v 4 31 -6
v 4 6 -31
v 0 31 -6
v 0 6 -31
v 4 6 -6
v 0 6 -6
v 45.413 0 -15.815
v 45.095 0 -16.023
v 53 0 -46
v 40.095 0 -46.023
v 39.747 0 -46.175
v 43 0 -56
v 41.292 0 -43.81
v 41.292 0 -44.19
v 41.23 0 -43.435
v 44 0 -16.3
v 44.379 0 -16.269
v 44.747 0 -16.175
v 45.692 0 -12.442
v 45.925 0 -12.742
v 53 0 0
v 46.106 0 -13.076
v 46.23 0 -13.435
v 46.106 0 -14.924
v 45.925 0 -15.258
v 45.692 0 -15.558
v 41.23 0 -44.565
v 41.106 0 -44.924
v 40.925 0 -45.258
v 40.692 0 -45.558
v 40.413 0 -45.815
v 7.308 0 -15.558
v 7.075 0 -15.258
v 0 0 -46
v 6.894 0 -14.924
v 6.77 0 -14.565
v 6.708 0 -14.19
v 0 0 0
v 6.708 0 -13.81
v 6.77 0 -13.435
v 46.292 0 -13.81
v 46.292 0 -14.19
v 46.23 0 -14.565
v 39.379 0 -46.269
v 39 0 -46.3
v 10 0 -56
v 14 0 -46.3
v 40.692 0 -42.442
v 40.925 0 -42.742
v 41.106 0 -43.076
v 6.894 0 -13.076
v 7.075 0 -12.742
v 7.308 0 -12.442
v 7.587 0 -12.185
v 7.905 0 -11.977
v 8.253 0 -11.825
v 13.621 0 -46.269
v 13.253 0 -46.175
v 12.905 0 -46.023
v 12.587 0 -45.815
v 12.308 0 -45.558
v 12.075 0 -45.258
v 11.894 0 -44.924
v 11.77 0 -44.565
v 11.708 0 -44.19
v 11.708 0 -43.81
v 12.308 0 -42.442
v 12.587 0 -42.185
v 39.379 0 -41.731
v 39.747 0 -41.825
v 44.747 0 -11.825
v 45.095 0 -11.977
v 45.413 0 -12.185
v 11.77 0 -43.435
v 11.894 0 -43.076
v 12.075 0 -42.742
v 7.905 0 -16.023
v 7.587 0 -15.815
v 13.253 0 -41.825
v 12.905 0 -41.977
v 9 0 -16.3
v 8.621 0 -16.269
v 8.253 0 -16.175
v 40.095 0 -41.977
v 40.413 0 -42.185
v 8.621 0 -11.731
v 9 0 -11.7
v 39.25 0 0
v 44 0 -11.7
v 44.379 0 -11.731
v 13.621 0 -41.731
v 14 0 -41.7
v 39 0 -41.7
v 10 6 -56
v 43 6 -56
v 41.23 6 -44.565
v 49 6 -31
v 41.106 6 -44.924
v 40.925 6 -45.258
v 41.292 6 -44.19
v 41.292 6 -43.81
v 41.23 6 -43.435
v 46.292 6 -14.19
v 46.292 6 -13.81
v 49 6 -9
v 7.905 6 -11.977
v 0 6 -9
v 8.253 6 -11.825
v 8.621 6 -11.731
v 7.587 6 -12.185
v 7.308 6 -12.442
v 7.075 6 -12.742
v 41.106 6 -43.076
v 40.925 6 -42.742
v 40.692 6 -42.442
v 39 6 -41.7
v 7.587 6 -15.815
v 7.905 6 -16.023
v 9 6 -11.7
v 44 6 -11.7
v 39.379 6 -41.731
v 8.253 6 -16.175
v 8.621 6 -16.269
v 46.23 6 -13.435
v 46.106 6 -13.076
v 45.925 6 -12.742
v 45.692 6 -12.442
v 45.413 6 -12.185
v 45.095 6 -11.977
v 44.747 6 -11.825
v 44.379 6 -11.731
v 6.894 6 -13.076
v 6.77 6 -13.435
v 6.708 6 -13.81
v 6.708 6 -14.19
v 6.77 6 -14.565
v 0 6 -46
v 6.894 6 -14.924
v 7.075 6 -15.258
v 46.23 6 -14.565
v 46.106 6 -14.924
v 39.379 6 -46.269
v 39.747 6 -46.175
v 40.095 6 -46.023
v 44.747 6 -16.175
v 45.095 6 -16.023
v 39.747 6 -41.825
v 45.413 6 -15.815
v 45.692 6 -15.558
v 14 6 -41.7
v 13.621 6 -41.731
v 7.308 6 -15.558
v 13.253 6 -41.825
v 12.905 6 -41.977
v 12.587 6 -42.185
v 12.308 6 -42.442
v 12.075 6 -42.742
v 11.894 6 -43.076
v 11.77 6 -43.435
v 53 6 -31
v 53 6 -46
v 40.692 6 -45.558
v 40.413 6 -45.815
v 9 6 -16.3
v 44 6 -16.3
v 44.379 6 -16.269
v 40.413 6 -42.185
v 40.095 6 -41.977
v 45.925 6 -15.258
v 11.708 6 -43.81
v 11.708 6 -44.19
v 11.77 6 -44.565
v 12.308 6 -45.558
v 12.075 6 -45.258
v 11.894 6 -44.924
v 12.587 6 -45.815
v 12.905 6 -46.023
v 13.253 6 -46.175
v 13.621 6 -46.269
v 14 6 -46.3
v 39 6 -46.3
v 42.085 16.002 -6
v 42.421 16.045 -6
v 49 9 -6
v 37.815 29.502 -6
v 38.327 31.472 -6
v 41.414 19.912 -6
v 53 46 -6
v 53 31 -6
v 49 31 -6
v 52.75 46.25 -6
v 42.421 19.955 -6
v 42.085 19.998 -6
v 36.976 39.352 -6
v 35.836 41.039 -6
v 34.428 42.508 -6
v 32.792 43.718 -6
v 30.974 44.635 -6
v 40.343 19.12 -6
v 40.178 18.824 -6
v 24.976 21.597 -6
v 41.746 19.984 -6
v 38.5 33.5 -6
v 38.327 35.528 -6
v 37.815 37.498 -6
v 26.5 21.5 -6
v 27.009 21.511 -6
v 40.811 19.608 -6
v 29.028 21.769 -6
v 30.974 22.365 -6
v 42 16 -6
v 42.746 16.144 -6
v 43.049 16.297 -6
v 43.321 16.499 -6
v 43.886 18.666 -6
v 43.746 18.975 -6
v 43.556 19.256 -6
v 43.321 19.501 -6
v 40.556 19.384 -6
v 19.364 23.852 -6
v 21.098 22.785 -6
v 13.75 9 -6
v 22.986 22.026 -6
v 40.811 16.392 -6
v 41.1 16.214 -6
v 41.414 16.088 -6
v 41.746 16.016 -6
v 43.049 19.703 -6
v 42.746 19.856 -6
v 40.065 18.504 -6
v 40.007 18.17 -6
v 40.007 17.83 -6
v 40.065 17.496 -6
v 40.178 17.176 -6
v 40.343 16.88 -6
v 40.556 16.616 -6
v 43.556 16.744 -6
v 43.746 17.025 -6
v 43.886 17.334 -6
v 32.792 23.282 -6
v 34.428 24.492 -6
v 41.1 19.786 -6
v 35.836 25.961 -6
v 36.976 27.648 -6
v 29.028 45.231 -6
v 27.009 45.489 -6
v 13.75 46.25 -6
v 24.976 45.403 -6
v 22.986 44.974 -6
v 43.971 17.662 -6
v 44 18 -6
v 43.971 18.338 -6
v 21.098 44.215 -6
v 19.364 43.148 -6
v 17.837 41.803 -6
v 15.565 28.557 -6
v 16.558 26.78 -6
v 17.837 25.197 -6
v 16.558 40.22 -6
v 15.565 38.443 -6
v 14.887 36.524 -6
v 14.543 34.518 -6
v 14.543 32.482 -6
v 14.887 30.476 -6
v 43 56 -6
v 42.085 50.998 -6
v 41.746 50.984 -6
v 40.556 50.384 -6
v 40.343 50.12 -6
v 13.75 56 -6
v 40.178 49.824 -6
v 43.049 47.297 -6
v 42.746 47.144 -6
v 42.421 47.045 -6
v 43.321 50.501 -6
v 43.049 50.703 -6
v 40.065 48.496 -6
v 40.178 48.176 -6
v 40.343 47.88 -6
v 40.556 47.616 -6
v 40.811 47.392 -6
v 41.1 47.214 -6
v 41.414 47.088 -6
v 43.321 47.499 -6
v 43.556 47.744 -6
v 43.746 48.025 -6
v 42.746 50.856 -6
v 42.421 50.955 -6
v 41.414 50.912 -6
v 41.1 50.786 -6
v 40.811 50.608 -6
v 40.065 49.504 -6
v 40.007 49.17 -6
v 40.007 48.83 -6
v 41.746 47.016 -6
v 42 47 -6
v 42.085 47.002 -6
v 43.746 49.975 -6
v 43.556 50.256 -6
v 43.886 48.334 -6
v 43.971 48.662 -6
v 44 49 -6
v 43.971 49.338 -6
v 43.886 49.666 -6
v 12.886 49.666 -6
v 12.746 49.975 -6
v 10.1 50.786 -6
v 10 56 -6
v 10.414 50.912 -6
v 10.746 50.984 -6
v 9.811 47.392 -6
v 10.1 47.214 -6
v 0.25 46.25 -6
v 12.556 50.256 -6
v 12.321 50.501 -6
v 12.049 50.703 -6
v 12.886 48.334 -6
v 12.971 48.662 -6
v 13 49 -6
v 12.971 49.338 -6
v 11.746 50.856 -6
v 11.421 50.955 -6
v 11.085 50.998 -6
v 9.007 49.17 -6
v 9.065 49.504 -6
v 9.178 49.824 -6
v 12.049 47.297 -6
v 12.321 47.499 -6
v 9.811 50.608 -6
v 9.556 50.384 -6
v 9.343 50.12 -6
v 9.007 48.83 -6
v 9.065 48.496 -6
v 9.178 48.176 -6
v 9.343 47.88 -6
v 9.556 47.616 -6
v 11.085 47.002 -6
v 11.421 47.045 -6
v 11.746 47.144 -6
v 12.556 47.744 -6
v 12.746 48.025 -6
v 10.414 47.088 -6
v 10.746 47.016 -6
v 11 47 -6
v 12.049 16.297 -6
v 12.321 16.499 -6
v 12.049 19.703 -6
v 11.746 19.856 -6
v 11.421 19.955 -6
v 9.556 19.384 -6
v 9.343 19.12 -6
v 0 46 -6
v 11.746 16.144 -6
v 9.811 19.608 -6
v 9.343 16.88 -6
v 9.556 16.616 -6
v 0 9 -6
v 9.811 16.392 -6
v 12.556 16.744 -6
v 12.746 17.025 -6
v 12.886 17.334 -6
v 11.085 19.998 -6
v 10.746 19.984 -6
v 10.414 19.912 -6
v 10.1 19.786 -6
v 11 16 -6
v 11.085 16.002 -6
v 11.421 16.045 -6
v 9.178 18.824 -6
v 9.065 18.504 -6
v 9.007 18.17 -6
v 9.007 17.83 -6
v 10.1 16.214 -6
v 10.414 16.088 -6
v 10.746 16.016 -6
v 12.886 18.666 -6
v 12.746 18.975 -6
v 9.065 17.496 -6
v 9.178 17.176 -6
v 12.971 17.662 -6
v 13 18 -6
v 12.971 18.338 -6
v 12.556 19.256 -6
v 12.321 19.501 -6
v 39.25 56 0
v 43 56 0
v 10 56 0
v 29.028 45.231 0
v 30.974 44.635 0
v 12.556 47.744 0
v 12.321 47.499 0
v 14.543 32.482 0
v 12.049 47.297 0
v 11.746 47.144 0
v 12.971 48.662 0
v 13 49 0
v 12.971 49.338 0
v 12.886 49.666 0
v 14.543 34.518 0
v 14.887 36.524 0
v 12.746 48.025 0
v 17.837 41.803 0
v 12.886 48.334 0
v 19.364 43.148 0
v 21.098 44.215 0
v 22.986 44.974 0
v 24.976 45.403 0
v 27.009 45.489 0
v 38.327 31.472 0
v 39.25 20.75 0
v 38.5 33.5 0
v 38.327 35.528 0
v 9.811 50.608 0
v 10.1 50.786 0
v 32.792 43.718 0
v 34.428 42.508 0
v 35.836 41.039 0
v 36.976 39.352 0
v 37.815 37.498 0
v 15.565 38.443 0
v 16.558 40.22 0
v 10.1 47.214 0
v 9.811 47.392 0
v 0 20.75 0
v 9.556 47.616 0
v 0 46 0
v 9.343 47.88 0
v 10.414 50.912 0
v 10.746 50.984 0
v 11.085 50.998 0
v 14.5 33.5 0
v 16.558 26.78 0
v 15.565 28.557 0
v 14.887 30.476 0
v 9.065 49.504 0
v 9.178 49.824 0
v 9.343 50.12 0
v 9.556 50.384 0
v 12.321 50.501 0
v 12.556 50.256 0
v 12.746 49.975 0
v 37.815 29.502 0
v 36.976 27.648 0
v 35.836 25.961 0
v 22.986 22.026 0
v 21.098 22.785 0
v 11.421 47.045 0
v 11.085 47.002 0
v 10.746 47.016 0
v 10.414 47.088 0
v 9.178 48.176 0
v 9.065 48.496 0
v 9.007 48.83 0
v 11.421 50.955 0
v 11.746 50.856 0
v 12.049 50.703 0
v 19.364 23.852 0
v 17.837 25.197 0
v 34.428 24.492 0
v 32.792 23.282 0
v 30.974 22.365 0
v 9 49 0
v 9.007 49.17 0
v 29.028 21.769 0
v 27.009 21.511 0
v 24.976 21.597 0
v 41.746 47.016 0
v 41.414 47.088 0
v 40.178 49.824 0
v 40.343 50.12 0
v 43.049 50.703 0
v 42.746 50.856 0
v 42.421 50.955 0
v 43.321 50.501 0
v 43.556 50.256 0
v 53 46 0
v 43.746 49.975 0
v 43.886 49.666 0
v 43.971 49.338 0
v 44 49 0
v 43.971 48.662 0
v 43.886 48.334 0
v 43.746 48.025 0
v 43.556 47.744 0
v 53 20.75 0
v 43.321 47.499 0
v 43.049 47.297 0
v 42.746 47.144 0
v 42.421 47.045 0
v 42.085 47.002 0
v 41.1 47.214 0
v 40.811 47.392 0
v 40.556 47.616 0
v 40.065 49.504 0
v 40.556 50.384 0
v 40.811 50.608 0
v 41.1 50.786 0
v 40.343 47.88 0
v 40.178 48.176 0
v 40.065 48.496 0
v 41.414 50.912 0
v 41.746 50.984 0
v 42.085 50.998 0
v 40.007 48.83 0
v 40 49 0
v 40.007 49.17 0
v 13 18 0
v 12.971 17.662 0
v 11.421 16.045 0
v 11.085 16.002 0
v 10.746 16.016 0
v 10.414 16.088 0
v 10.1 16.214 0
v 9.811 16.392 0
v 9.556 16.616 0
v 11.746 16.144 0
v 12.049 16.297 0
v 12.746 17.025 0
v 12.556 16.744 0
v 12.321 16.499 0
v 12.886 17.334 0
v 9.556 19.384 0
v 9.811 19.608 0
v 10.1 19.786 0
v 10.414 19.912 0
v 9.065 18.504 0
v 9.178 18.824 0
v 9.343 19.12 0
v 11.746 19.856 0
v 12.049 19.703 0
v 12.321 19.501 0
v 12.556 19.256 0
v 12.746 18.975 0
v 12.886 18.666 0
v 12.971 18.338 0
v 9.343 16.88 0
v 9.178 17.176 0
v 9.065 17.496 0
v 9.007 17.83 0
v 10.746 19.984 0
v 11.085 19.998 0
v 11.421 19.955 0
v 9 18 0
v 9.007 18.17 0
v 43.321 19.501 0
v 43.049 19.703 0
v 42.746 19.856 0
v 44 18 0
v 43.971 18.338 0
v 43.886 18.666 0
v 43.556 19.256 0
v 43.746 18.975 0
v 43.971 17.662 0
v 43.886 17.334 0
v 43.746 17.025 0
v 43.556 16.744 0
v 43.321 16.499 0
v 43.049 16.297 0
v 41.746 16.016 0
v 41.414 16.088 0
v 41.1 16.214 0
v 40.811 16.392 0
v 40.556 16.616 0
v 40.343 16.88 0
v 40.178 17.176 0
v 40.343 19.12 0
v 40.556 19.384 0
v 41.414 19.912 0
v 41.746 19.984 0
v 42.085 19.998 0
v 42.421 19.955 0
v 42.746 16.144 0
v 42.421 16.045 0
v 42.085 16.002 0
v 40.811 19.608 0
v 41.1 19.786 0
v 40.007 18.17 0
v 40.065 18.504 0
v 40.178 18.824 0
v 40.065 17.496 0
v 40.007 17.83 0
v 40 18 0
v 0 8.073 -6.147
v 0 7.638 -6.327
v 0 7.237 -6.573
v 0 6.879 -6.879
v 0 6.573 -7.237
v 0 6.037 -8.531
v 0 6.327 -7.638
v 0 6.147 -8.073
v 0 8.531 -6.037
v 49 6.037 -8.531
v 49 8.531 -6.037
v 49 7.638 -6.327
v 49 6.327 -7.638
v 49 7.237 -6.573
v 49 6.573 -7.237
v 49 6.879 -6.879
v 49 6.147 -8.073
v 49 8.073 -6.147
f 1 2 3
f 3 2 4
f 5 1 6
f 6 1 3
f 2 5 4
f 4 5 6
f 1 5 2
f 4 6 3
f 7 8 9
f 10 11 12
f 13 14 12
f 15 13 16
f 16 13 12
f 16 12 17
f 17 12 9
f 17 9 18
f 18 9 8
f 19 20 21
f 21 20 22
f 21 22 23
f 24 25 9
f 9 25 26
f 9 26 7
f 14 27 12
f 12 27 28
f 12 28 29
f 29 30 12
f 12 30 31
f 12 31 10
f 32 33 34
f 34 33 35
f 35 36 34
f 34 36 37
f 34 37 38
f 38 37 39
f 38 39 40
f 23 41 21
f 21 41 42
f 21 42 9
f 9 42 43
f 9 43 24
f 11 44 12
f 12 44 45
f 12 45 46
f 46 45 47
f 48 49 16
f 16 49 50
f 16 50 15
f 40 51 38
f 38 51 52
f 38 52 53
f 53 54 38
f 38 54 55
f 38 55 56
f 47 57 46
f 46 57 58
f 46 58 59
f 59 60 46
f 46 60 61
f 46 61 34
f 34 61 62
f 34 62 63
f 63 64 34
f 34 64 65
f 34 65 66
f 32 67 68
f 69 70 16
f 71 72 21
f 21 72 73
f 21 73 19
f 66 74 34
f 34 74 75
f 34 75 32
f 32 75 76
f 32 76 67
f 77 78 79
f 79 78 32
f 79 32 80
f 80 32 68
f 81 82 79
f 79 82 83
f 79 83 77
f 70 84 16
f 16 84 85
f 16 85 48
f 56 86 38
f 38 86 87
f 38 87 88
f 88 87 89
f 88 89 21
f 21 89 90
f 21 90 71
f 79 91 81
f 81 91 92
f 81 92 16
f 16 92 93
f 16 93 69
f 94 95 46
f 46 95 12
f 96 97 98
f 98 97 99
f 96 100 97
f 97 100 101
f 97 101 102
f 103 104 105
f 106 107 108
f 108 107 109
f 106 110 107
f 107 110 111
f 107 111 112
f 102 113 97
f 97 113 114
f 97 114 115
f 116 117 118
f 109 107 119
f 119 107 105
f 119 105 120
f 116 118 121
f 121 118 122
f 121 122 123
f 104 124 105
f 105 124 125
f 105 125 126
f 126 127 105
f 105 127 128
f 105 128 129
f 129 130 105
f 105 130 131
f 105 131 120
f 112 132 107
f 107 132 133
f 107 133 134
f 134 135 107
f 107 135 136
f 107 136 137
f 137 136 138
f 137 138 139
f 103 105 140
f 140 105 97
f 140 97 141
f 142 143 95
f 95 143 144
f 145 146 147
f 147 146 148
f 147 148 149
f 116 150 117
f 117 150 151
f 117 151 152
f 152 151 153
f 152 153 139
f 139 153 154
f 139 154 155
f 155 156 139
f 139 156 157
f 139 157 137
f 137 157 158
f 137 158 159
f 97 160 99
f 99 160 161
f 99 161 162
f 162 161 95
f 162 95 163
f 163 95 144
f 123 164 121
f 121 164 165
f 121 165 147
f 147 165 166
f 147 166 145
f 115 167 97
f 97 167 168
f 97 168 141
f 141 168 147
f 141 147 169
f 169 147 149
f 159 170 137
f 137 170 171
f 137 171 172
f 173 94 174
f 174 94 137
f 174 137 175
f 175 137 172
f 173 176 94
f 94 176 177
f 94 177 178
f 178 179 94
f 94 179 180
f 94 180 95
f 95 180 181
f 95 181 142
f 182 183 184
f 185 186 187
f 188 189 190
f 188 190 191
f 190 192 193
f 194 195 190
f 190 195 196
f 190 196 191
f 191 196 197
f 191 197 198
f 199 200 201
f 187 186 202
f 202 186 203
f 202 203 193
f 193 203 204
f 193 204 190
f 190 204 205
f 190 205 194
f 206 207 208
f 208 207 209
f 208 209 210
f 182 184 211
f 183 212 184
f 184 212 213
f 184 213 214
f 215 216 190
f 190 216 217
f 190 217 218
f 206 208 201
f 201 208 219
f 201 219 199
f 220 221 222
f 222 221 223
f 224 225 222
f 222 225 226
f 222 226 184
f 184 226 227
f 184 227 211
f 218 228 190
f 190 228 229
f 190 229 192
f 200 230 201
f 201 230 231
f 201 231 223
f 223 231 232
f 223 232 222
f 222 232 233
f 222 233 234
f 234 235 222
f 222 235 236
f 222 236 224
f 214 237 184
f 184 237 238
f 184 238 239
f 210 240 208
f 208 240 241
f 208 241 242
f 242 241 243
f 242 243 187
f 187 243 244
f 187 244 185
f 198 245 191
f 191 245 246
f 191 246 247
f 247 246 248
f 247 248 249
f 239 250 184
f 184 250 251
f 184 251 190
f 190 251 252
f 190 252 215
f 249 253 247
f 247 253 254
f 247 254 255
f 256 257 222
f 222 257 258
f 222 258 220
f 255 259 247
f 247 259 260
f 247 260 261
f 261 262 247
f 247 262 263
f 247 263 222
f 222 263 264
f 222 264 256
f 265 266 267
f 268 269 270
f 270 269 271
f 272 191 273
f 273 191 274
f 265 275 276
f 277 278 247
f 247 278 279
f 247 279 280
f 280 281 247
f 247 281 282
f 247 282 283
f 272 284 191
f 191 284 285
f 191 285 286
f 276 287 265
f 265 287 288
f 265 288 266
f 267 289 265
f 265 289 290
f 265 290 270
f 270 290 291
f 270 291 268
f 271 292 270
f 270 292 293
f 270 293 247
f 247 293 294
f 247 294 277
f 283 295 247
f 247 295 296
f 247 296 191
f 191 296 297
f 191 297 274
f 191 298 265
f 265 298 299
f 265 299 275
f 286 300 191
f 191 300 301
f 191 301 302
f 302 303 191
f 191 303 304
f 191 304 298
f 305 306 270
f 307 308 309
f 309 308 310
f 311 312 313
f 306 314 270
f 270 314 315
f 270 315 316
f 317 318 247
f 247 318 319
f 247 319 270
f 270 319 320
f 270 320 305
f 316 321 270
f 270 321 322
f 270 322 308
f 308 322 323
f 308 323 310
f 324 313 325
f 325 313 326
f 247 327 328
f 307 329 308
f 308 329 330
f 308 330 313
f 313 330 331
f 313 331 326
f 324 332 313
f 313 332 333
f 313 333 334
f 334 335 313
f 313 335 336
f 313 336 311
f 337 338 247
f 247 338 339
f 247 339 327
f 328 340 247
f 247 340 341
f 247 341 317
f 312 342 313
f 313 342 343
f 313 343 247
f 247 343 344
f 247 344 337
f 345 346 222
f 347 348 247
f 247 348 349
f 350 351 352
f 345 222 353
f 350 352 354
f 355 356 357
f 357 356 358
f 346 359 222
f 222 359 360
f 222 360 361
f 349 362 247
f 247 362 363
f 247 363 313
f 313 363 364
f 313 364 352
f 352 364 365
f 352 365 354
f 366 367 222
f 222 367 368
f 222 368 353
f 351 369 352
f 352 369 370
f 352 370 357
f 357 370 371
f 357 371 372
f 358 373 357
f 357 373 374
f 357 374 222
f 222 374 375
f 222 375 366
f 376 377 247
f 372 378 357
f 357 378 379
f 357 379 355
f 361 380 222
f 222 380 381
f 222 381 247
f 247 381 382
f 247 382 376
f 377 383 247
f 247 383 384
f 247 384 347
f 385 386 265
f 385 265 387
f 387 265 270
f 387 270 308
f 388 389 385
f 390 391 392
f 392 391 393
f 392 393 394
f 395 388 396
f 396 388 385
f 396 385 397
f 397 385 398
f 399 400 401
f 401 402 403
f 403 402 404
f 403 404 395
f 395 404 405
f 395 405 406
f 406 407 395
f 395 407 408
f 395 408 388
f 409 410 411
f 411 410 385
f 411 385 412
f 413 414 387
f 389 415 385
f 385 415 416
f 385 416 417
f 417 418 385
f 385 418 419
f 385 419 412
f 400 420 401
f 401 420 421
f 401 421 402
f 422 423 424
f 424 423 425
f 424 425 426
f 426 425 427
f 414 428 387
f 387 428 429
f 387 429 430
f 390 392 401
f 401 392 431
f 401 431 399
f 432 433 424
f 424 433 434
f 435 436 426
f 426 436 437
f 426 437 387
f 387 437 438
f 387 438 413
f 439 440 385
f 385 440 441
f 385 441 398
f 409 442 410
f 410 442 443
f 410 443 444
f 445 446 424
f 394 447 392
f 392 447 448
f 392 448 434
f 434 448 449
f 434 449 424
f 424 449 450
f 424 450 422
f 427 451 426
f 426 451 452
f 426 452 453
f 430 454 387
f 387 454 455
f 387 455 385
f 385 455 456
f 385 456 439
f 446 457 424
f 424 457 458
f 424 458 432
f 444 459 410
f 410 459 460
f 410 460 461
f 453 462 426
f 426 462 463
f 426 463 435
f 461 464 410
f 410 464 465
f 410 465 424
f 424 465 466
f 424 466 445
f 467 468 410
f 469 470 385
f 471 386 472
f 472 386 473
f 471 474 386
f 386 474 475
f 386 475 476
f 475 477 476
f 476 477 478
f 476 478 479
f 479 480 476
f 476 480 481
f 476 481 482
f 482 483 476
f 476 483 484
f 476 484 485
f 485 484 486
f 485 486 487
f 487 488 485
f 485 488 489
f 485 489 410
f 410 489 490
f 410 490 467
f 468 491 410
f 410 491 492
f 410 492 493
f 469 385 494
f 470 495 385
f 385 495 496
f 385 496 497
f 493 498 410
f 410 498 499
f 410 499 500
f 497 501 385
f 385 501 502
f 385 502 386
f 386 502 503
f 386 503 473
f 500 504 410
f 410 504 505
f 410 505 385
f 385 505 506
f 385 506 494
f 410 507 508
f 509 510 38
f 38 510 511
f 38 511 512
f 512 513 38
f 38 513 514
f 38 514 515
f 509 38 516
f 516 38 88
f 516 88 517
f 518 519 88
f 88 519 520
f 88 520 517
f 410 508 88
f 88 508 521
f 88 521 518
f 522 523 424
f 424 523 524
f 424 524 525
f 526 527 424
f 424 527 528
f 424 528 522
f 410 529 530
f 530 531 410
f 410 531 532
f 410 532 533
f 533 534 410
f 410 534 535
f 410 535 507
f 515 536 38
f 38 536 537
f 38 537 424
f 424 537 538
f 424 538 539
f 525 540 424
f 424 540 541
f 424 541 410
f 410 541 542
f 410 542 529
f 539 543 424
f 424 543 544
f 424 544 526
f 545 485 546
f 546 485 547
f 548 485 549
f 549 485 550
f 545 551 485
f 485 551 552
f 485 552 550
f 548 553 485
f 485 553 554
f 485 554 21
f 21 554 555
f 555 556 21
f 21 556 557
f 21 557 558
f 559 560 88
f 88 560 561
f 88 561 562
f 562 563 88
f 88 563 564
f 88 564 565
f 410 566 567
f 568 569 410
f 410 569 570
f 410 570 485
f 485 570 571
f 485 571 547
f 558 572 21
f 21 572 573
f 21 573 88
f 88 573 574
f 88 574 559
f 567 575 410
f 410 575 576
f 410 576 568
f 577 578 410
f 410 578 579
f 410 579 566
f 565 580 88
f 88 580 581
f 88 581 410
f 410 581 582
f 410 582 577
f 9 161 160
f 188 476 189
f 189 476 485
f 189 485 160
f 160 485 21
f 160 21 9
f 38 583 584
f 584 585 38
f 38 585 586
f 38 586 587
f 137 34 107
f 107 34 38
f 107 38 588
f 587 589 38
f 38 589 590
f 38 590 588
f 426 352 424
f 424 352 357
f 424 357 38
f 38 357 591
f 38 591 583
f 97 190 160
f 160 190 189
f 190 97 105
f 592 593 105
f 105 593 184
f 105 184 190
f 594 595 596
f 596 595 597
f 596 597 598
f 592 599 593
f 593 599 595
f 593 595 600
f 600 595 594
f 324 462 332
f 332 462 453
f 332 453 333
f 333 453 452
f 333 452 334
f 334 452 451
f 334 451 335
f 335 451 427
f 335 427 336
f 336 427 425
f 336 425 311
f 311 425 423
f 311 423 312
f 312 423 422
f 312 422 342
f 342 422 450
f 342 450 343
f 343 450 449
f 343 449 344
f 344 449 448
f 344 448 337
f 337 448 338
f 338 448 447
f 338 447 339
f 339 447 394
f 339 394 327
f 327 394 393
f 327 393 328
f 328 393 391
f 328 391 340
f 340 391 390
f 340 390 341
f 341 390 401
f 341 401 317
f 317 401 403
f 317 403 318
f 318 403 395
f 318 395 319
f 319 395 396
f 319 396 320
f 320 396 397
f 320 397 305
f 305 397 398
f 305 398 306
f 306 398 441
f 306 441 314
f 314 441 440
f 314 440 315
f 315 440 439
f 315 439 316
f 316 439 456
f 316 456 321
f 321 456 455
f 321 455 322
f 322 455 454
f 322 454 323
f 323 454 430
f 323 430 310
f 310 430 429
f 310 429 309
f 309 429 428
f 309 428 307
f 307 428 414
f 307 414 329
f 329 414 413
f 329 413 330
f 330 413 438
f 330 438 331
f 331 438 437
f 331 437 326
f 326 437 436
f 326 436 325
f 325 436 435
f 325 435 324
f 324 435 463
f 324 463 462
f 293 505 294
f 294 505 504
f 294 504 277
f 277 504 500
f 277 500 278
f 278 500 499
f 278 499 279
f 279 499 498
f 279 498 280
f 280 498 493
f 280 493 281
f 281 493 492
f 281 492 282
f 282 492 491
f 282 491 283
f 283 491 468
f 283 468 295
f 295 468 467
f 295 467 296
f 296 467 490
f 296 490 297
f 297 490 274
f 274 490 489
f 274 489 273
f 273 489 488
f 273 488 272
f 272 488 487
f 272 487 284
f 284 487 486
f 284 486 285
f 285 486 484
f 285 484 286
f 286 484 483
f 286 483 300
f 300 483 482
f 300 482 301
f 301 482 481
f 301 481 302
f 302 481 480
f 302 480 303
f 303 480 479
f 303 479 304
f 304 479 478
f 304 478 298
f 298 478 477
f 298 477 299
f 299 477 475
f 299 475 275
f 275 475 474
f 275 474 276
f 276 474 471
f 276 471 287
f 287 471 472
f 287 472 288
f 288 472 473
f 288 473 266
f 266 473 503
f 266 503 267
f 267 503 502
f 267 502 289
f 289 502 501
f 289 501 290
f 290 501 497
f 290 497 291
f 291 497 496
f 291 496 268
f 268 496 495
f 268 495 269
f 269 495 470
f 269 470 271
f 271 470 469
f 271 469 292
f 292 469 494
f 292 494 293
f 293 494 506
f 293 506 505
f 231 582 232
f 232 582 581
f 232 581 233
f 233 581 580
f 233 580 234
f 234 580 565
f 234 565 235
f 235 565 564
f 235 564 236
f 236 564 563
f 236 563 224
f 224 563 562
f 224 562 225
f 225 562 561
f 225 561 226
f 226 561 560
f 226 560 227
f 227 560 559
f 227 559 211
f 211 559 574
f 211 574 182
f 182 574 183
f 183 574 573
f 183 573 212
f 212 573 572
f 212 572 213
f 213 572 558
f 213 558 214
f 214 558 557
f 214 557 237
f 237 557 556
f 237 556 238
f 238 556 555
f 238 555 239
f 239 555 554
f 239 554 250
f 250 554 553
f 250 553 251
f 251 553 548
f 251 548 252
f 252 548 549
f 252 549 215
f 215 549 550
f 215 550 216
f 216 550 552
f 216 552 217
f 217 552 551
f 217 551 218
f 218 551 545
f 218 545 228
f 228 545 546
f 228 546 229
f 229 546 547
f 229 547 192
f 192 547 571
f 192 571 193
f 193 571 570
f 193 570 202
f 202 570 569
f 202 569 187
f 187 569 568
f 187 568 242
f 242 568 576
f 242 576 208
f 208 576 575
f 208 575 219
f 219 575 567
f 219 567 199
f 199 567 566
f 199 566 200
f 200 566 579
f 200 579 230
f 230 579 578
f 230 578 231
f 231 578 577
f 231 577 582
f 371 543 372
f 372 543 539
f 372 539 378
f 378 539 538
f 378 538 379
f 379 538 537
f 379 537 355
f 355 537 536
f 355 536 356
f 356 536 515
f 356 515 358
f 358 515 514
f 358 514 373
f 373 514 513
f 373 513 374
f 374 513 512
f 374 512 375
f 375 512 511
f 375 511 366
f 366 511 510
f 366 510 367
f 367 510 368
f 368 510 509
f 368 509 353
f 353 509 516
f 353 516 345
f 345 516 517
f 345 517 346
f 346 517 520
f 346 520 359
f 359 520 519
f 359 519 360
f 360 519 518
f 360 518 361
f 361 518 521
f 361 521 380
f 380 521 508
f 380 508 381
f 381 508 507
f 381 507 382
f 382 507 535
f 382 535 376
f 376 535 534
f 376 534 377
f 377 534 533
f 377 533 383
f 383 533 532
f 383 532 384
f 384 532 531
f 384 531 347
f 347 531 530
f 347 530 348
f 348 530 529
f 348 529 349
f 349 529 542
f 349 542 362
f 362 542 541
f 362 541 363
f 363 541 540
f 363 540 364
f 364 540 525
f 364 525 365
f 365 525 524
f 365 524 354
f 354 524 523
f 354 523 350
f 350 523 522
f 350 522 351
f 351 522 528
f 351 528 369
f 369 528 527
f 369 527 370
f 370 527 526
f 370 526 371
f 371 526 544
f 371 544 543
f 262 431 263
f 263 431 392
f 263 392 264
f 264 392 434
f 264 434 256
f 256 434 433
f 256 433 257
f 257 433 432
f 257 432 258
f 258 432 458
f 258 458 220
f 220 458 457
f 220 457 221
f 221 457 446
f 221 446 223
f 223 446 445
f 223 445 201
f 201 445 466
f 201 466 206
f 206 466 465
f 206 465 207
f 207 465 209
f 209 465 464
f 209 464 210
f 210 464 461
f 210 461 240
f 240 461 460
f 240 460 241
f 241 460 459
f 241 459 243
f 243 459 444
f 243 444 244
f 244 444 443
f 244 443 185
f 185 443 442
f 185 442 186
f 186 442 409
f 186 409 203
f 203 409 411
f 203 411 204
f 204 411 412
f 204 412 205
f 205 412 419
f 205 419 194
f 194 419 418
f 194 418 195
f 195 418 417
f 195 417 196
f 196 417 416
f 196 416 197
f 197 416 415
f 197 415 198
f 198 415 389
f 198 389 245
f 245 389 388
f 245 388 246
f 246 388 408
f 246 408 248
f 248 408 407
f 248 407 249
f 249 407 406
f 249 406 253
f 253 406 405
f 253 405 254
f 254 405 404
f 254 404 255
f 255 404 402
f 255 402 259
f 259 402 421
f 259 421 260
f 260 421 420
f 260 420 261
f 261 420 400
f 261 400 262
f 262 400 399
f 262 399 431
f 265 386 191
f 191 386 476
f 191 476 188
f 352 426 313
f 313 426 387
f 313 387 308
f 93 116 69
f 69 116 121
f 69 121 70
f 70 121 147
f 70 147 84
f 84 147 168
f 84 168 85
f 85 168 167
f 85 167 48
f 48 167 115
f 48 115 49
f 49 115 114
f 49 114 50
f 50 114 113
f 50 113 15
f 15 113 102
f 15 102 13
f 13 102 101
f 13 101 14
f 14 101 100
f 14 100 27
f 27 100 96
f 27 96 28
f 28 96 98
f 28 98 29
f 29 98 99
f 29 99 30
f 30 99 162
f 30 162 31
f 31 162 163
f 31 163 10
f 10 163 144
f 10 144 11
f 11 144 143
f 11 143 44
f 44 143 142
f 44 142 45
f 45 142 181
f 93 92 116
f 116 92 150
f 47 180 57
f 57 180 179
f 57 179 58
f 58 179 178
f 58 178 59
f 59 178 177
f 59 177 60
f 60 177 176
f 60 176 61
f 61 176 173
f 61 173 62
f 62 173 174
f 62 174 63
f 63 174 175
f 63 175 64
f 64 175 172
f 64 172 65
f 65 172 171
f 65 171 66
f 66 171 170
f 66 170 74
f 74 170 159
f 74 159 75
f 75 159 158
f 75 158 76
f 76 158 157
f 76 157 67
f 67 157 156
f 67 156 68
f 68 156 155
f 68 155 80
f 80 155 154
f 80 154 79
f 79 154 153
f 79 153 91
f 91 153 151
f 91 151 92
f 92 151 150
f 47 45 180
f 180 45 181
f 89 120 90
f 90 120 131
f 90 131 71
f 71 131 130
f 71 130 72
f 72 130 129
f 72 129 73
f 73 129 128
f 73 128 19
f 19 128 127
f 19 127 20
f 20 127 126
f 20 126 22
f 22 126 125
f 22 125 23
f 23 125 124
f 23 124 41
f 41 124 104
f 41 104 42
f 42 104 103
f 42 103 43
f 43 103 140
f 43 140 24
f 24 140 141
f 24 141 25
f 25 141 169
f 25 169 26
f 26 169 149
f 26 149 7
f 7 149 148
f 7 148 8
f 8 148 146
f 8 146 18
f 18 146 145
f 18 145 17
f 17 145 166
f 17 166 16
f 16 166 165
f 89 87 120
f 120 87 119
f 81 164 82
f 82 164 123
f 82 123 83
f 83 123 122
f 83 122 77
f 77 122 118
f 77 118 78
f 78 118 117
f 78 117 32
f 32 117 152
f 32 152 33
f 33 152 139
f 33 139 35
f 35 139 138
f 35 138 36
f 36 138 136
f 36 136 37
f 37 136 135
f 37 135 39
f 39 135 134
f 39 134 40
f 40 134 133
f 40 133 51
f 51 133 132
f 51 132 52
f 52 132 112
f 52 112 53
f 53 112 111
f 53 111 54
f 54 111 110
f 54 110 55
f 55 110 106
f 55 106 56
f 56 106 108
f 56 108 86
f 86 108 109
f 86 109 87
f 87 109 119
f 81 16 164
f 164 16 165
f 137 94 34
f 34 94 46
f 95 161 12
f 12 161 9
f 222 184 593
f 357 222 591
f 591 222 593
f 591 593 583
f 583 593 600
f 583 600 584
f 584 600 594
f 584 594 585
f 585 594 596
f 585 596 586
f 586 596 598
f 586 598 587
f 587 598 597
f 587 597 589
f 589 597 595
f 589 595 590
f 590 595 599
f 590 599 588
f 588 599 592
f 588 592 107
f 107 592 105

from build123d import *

# Parameters (mm, degrees)
EXTRUDE_1_DEPTH          = 53
EXTRUDE_2_DEPTH          = 4
EXTRUDE_3_DEPTH          = 4
CUT_EXTRUDE_1_DEPTH      = 96.294281046
CUT_EXTRUDE_1_DEPTH_BACK = 96.294281046
SKETCH_4_R               = 2
SKETCH_4_R_2             = 12
CHAMFER_1_SIZE           = 10
CUT_EXTRUDE_2_DEPTH      = 92.896681115
CHAMFER_2_SIZE           = 10
FILLET_1_R               = 3


with BuildPart() as part:
    # Эскиз1 → Бобышка-Вытянуть1 (new body)
    with BuildSketch(Plane(origin=(0, 0, 0), x_dir=(0, 0, -1), z_dir=(1, 0, 0))):
        Polygon((0, 0), (0, 56), (6, 56), (6, 6), (56, 6), (56, 0), align=None)
    extrude(amount=EXTRUDE_1_DEPTH)

    # Эскиз2 → Бобышка-Вытянуть2 (add)
    with BuildSketch(Plane(origin=(53, 0, 0), x_dir=(0, 0, -1), z_dir=(1, 0, 0))):
        Polygon((6, 31), (31, 6), (6, 6), align=None)
    extrude(amount=-EXTRUDE_2_DEPTH)

    # Эскиз4 → Вырез-Вытянуть1 (cut, two sides: drawn at the far end of the back side and taken through both)
    with BuildSketch(Plane.XY.offset(-CUT_EXTRUDE_1_DEPTH_BACK)):
        with Locations(Location((11, 49, 0), (0, 0, 270))):
            Circle(SKETCH_4_R)
        with Locations(Location((42, 49, 0), (0, 0, 270))):
            Circle(SKETCH_4_R)
        with Locations(Location((42, 18, 0), (0, 0, 270))):
            Circle(SKETCH_4_R)
        with Locations(Location((11, 18, 0), (0, 0, 270))):
            Circle(SKETCH_4_R)
        with Locations(Location((26.5, 33.5, 0), (0, 0, 270))):
            Circle(SKETCH_4_R_2)
    extrude(amount=CUT_EXTRUDE_1_DEPTH + CUT_EXTRUDE_1_DEPTH_BACK, mode=Mode.SUBTRACT)

    # Фаска1
    chamfer_1_edges = [part.edges().sort_by_distance(p)[0] for p in [
        (53, 56, -3),
        (0, 56, -3),
    ]]
    chamfer(chamfer_1_edges, length=CHAMFER_1_SIZE)

    # Эскиз5 → Вырез-Вытянуть2 (cut, through all)
    with BuildSketch(Plane(origin=(0, 6, 0), x_dir=(1, 0, 0), z_dir=(0, 1, 0))):
        with BuildLine():
            Line((44, 11.7), (9, 11.7))
            ThreePointArc((9, 11.7), (6.7, 14), (9, 16.3))
            Line((9, 16.3), (44, 16.3))
            ThreePointArc((44, 16.3), (46.3, 14), (44, 11.7))
        make_face()
        with BuildLine():
            Line((39, 41.7), (14, 41.7))
            ThreePointArc((14, 41.7), (11.7, 44), (14, 46.3))
            Line((14, 46.3), (39, 46.3))
            ThreePointArc((39, 46.3), (41.3, 44), (39, 41.7))
        make_face()
    extrude(amount=-CUT_EXTRUDE_2_DEPTH, mode=Mode.SUBTRACT)

    # Фаска2
    chamfer_2_edges = [part.edges().sort_by_distance(p)[0] for p in [
        (53, 3, -56),
        (0, 3, -56),
    ]]
    chamfer(chamfer_2_edges, length=CHAMFER_2_SIZE)

    # Скругление1
    fillet_1_edges = [part.edges().sort_by_distance(p)[0] for p in [
        (24.5, 6, -6),
    ]]
    fillet(fillet_1_edges, radius=FILLET_1_R)


with BuildPart() as body_2:
    # Эскиз3 → Бобышка-Вытянуть3 (new body)
    with BuildSketch(Plane.ZY):
        Polygon((-6, 31), (-6, 6), (-31, 6), align=None)
    extrude(amount=-EXTRUDE_3_DEPTH)


solid = Compound([part.part, body_2.part])
